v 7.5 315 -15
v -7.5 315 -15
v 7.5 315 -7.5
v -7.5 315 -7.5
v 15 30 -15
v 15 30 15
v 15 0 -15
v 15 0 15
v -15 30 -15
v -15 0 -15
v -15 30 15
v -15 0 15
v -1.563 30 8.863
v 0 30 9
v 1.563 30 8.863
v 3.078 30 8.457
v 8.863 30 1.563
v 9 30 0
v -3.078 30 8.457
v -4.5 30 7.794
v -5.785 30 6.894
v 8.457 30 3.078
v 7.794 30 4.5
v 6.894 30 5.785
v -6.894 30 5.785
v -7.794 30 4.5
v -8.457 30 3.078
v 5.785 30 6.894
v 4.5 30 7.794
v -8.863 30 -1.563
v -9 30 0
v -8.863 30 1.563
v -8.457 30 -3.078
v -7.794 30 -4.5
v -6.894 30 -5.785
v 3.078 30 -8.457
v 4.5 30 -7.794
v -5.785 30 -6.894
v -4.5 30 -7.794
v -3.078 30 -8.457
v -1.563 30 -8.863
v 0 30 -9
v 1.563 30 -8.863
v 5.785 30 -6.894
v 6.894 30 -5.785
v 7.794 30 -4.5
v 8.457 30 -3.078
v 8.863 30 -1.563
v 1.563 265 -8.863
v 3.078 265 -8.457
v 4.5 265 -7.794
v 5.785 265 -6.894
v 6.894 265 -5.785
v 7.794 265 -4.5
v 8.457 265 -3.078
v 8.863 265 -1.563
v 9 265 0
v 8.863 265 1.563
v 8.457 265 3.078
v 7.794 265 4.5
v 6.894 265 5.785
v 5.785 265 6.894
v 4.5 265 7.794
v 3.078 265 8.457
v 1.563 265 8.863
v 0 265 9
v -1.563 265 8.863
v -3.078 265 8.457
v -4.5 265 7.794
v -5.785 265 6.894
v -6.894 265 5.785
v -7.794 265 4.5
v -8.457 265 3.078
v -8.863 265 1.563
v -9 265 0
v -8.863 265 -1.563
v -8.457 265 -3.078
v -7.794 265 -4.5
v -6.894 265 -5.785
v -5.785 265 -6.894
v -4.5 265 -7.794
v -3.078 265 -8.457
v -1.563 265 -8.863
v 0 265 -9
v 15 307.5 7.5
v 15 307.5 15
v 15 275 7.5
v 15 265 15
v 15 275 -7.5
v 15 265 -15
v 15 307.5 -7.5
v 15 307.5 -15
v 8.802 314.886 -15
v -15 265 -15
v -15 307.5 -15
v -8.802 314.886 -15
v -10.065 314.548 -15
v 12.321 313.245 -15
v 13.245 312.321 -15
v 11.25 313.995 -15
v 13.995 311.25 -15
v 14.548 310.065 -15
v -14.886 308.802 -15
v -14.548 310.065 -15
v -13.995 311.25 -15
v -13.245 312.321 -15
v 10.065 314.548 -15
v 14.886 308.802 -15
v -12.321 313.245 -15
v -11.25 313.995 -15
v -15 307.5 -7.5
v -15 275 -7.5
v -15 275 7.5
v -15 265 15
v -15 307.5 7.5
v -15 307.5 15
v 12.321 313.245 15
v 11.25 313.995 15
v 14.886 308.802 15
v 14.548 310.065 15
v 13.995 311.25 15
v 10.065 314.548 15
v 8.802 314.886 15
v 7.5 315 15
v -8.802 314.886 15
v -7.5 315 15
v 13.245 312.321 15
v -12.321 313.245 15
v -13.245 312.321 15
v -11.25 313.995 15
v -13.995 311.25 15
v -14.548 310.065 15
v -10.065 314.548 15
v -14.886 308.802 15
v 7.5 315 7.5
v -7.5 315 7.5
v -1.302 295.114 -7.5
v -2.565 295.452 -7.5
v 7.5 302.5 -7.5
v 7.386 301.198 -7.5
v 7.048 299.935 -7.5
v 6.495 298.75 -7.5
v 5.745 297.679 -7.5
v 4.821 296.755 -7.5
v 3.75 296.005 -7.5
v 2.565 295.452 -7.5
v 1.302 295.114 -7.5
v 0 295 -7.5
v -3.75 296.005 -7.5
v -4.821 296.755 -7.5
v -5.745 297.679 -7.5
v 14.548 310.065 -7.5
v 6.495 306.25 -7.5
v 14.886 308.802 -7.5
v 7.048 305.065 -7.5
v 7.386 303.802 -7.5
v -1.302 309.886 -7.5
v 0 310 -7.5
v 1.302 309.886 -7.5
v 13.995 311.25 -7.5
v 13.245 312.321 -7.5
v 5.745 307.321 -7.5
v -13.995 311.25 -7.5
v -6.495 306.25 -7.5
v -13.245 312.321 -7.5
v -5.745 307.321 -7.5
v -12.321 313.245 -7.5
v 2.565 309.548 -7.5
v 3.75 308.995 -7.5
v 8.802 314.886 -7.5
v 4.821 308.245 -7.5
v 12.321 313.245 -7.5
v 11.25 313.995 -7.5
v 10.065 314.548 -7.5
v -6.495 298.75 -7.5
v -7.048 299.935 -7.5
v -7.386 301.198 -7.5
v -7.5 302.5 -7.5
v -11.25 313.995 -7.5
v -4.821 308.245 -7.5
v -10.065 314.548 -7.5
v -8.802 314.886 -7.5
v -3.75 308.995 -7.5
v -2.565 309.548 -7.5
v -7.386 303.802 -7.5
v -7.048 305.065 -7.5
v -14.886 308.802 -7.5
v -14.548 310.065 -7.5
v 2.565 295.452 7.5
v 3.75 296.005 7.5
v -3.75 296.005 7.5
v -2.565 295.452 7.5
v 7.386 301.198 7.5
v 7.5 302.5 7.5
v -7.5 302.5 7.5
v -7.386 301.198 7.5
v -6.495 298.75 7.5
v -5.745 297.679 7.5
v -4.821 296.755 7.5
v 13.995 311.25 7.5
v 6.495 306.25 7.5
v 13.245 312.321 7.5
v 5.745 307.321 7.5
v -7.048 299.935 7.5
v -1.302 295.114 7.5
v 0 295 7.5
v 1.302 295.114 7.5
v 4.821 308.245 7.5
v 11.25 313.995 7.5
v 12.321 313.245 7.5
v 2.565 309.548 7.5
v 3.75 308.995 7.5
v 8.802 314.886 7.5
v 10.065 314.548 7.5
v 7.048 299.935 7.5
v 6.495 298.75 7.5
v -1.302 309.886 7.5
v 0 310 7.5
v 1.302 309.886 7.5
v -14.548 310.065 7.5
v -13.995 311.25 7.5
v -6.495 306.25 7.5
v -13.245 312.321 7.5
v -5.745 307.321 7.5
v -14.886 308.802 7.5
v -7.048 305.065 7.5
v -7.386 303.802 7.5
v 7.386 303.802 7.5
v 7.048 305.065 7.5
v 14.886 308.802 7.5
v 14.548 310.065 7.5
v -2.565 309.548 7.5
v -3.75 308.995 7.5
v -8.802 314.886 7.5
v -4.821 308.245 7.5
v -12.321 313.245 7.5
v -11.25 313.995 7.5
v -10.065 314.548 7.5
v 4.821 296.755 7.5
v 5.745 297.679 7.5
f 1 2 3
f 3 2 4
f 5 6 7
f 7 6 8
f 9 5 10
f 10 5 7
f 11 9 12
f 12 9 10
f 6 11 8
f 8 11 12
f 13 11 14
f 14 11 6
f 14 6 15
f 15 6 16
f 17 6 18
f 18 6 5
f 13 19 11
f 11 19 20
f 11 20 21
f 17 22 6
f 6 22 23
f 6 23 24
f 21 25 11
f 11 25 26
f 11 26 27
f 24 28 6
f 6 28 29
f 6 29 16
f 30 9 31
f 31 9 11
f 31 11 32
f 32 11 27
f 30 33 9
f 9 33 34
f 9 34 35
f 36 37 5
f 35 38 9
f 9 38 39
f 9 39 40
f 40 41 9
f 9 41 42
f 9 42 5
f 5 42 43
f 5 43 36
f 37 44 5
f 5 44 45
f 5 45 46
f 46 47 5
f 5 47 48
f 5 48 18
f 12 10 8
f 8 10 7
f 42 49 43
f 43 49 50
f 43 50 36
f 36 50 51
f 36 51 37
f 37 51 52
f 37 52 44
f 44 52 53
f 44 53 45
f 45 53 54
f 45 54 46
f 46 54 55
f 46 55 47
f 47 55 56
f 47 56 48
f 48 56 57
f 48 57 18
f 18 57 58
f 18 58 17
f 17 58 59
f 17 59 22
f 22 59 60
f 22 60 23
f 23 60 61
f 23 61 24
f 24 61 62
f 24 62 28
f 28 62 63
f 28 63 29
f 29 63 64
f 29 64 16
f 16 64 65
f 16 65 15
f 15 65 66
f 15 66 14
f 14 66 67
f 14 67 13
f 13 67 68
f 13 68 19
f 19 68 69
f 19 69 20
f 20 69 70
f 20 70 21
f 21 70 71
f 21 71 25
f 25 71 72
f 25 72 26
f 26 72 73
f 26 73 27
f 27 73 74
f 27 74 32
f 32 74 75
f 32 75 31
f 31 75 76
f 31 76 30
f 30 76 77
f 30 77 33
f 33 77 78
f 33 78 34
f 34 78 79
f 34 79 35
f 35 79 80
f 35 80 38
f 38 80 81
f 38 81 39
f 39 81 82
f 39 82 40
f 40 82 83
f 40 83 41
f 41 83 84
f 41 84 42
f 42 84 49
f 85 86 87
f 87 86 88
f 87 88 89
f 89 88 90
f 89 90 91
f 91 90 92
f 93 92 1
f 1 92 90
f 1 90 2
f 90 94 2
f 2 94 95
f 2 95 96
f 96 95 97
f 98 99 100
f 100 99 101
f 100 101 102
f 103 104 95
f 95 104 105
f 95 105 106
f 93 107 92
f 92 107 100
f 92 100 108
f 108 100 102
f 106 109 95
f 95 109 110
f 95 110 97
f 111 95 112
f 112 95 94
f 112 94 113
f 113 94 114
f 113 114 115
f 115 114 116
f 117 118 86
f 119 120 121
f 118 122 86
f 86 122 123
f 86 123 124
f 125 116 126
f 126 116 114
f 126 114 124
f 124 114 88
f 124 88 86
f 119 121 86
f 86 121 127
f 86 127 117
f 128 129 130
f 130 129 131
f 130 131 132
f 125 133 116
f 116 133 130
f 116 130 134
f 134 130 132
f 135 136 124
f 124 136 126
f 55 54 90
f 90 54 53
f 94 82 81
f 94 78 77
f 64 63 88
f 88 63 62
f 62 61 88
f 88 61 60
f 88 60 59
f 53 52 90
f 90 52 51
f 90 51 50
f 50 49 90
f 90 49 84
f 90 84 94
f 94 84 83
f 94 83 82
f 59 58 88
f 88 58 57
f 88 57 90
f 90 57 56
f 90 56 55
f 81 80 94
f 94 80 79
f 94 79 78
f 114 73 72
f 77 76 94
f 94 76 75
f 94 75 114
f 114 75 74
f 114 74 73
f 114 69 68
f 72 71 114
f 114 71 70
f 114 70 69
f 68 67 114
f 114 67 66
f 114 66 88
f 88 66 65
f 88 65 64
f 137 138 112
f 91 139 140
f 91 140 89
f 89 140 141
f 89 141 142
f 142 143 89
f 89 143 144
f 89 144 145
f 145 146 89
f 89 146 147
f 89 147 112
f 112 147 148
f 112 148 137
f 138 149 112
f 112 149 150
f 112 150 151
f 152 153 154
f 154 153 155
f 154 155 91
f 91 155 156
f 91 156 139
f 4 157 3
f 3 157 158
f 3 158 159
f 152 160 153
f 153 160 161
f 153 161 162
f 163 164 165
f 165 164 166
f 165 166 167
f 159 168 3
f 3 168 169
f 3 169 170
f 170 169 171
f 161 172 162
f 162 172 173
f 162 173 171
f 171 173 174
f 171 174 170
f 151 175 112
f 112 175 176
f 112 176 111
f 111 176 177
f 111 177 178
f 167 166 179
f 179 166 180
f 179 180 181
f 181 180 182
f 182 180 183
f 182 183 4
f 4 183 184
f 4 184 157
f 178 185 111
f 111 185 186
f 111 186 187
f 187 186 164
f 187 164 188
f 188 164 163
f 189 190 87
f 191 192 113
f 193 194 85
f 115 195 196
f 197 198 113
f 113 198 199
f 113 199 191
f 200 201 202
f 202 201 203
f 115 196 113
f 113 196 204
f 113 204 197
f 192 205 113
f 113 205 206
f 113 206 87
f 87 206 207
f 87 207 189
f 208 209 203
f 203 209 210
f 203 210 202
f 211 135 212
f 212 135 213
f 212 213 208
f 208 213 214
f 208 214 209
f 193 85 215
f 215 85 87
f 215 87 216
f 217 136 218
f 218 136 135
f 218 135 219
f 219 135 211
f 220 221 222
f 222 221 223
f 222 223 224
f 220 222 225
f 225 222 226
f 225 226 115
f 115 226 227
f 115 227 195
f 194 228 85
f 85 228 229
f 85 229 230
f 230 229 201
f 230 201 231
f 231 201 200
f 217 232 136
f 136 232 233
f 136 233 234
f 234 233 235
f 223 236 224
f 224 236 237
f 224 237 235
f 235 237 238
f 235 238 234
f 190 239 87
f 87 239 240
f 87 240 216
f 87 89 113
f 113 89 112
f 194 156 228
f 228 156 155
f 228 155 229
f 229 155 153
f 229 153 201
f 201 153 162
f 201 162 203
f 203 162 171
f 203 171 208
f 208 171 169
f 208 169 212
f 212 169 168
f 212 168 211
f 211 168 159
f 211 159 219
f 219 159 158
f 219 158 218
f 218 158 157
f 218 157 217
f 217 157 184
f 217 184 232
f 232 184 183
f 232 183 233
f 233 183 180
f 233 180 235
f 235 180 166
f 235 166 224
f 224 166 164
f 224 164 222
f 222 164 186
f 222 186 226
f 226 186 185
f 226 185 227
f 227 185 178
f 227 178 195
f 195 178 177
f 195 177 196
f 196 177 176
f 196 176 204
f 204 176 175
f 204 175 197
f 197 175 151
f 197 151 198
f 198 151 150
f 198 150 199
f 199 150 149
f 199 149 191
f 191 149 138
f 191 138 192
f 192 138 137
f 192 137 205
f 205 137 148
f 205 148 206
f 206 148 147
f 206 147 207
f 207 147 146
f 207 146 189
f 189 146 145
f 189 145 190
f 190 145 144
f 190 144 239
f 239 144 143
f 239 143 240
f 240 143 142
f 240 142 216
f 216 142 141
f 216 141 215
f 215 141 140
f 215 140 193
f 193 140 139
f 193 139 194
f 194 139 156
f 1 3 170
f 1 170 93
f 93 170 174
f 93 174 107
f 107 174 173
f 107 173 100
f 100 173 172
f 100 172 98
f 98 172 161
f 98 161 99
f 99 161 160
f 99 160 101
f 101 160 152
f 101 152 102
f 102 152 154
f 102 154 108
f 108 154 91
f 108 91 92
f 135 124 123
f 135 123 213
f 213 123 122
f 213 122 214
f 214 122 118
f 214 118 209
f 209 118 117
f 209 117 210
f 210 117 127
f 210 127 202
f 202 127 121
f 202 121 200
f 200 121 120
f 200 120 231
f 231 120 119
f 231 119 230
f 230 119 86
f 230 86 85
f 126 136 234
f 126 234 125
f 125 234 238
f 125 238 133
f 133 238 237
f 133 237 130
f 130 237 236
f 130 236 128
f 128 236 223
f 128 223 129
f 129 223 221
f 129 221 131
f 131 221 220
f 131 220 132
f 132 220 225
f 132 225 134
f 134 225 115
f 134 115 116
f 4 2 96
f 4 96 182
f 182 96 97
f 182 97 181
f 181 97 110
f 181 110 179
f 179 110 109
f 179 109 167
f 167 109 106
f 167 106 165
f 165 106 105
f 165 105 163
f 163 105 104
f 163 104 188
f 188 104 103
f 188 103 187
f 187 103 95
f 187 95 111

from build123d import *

# Parameters (mm, degrees)
SKETCH1_W           = 30
SKETCH1_H           = 30
BOSS_EXTRUDE1_DEPTH = 30
SKETCH2_R           = 9
BOSS_EXTRUDE2_DEPTH = 235
SKETCH3_W           = 30
SKETCH3_H           = 30
BOSS_EXTRUDE3_DEPTH = 50
SKETCH4_W           = 30
SKETCH4_H           = 15
CUT_EXTRUDE1_DEPTH  = 40
SKETCH5_R           = 7.5
BOSS_EXTRUDE4_DEPTH = 15
FILLET1_R           = 7.5


with BuildPart() as part:
    # Sketch1 → Boss-Extrude1 (new body)
    with BuildSketch(Plane(origin=(0, 0, 0), x_dir=(1, 0, 0), z_dir=(0, 1, 0))):
        Rectangle(SKETCH1_W, SKETCH1_H)
    extrude(amount=BOSS_EXTRUDE1_DEPTH)

    # Sketch2 → Boss-Extrude2 (add)
    with BuildSketch(Plane(origin=(0, 30, 0), x_dir=(1, 0, 0), z_dir=(0, 1, 0))):
        Circle(SKETCH2_R)
    extrude(amount=BOSS_EXTRUDE2_DEPTH)

    # Sketch3 → Boss-Extrude3 (add)
    with BuildSketch(Plane(origin=(0, 265, 0), x_dir=(1, 0, 0), z_dir=(0, 1, 0))):
        Rectangle(SKETCH3_W, SKETCH3_H)
    extrude(amount=BOSS_EXTRUDE3_DEPTH)

    # Sketch4 → Cut-Extrude1 (cut)
    with BuildSketch(Plane(origin=(0, 315, 0), x_dir=(1, 0, 0), z_dir=(0, 1, 0))):
        Rectangle(SKETCH4_W, SKETCH4_H)
    extrude(amount=-CUT_EXTRUDE1_DEPTH, mode=Mode.SUBTRACT)

    # Sketch5 → Boss-Extrude4 (add)
    with BuildSketch(Plane(origin=(0, 0, 7.5), x_dir=(-1, 0, 0), z_dir=(0, 0, -1))):
        with Locations((0, 302.5)):
            Circle(SKETCH5_R)
    extrude(amount=BOSS_EXTRUDE4_DEPTH)

    # Fillet1
    fillet1_edges = [part.edges().sort_by_distance(p)[0] for p in [
        (15, 315, 11.25),
        (-15, 315, -11.25),
        (15, 315, -11.25),
        (-15, 315, 11.25),
    ]]
    fillet(fillet1_edges, radius=FILLET1_R)


solid = part.part
